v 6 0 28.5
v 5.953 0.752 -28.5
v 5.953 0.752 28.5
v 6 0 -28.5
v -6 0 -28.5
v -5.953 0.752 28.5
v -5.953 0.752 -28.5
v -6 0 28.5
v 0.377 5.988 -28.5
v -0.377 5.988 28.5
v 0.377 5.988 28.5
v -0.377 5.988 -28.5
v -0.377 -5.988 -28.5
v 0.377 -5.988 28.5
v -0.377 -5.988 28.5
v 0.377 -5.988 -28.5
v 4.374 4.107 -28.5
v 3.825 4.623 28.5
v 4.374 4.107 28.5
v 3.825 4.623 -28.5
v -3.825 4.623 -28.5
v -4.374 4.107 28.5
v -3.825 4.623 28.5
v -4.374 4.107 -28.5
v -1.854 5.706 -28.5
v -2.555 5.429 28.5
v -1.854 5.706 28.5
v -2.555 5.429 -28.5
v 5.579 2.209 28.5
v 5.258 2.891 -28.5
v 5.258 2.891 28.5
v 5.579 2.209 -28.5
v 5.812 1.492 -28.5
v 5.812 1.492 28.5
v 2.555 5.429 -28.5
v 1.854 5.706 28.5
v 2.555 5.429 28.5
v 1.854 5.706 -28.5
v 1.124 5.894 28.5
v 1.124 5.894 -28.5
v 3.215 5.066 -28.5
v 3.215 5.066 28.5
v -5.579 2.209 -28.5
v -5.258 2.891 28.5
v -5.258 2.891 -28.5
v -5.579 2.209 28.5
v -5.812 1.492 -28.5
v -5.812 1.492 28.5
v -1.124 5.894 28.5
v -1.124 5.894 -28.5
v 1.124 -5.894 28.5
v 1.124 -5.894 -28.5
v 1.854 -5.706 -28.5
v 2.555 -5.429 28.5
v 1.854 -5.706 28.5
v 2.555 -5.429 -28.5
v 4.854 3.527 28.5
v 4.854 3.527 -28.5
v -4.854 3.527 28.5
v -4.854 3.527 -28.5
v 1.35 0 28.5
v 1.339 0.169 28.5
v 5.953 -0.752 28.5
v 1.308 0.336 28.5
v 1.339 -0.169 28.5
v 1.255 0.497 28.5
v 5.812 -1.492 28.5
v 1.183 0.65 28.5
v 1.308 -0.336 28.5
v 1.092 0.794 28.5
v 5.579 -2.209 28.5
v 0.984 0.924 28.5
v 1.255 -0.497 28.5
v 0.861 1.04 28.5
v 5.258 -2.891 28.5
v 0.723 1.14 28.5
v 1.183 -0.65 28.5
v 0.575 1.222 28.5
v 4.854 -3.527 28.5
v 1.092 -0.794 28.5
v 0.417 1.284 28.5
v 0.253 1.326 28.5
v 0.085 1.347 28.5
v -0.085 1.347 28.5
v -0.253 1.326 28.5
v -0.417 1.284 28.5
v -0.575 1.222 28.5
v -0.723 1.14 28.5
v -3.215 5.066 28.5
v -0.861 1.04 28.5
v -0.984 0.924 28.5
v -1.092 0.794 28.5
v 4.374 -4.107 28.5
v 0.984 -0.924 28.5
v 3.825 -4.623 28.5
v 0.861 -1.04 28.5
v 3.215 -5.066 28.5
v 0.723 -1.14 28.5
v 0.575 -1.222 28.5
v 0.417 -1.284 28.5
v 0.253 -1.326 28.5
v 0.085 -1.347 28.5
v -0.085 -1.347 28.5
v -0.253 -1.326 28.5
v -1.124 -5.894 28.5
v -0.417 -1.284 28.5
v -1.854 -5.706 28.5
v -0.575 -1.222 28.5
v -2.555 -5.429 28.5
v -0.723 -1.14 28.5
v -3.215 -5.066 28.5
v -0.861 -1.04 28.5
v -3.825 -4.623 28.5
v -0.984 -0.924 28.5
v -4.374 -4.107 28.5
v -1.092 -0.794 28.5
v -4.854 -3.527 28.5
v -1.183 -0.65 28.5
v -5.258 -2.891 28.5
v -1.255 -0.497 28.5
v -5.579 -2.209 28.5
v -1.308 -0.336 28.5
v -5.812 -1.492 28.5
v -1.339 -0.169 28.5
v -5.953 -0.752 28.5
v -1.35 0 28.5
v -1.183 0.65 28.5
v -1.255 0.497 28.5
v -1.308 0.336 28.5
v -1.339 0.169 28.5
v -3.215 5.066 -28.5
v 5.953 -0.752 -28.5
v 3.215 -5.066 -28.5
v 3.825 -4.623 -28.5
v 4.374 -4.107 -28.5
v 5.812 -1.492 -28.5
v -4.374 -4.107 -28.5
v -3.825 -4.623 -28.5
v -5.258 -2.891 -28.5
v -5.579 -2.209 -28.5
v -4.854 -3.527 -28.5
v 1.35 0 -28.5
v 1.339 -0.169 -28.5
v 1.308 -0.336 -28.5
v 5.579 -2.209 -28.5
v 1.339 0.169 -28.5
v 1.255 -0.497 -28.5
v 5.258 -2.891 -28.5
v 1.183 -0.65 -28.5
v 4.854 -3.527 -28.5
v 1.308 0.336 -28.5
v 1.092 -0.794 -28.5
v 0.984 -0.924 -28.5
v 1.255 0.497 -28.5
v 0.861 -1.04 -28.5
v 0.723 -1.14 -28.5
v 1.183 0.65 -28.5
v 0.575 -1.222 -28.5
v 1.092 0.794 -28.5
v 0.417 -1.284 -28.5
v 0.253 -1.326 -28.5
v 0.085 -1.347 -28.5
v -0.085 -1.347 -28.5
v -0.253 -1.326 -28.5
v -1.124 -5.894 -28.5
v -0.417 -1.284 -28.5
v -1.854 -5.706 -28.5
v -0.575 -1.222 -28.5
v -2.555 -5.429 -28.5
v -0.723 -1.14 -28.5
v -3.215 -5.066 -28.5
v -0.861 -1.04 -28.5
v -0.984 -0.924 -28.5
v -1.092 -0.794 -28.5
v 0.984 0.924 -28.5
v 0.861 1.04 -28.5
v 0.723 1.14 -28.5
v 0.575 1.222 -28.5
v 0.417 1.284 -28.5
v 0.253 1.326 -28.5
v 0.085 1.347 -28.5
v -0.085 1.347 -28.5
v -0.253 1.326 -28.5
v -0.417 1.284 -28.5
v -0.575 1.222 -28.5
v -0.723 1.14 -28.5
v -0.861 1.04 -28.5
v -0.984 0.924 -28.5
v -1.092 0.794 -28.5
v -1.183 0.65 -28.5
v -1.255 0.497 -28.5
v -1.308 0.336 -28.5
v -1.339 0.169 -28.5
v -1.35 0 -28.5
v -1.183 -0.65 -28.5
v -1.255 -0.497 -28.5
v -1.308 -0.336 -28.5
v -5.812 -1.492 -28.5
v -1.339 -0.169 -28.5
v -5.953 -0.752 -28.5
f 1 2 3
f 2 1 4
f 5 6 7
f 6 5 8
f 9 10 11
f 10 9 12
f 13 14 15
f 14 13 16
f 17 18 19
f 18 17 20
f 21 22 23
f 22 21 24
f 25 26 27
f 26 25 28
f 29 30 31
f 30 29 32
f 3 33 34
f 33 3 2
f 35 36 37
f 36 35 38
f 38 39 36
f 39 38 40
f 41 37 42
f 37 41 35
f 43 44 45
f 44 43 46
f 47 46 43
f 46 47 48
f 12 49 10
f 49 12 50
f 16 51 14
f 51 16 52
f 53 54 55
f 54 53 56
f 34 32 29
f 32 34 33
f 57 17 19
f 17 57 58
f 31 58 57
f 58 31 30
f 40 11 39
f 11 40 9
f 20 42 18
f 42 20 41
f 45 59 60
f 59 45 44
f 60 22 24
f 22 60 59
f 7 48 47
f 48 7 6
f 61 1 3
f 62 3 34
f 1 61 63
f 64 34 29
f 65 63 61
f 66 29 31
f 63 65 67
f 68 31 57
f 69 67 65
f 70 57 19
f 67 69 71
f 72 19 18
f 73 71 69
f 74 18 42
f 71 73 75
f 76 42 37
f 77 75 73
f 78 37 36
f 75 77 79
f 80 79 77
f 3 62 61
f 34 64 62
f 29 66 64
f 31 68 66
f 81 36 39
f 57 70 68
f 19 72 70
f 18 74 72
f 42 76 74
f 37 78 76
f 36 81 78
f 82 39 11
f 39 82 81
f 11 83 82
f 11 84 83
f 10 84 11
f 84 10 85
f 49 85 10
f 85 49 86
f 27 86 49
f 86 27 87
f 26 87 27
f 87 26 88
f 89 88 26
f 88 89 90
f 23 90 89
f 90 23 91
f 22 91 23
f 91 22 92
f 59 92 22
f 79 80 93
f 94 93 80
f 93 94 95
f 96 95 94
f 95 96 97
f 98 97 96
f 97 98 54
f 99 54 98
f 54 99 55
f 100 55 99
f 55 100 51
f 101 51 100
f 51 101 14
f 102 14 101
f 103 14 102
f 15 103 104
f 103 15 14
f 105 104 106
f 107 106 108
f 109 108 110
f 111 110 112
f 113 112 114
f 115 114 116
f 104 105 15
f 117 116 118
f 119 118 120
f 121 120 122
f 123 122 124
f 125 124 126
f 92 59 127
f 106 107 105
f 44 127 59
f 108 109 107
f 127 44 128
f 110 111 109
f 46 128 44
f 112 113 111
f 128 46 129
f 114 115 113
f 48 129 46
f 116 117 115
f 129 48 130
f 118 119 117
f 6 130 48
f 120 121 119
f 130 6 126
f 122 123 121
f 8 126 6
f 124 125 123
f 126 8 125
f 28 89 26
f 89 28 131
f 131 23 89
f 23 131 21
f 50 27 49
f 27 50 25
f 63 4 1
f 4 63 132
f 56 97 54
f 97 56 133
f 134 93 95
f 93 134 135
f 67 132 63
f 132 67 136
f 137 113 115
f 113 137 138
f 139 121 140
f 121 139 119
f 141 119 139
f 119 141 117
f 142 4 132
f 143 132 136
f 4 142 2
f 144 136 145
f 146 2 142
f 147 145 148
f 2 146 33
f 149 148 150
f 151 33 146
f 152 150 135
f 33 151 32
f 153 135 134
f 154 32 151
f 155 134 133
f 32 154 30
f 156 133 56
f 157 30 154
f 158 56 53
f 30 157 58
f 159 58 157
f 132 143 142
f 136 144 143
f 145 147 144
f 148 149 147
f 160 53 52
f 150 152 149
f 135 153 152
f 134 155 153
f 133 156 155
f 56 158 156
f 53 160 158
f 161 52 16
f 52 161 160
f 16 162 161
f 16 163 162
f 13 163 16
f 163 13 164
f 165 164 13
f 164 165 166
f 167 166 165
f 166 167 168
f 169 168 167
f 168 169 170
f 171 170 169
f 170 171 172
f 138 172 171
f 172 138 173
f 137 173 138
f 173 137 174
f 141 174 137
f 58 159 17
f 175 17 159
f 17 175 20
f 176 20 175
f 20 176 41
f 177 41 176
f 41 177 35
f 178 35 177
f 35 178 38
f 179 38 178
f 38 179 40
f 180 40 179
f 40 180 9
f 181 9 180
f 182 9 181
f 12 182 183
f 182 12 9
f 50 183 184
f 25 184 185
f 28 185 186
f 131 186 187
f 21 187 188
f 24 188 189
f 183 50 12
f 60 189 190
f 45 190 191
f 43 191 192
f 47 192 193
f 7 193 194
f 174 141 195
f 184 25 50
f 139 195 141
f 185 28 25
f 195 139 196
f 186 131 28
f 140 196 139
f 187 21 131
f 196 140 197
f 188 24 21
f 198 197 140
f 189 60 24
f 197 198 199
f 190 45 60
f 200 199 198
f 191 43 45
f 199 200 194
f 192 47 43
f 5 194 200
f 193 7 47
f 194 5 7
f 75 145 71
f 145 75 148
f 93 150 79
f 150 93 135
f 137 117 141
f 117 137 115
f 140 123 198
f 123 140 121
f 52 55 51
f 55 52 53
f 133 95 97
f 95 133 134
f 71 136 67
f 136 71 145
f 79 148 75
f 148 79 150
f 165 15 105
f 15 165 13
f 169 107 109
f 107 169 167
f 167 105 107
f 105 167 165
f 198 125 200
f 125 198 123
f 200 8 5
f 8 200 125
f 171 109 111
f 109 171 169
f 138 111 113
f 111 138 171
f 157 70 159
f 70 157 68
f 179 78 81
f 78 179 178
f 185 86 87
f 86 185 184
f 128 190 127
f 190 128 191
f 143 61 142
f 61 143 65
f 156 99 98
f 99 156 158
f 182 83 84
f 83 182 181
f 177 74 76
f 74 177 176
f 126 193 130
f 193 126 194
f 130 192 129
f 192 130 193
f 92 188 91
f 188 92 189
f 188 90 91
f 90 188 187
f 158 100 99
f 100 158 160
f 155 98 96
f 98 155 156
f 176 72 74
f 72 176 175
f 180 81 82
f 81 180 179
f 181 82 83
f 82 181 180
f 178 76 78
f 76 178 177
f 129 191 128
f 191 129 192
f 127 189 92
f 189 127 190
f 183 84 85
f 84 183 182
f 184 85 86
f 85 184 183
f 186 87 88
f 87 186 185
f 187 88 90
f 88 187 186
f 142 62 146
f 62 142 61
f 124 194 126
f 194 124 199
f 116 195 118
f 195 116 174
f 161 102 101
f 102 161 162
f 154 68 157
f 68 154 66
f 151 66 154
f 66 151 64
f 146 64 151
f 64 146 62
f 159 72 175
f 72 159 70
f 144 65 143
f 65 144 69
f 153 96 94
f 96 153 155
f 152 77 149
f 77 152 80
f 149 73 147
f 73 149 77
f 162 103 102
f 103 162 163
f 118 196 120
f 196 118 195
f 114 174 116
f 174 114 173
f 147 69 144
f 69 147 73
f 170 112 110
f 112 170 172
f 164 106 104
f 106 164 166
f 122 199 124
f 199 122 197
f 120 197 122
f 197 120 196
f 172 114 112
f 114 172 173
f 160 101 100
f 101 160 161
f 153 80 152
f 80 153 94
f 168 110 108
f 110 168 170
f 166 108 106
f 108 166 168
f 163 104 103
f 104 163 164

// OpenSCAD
$fn = 50;


difference() {
	union() {
		translate(v = [0, 0, -28.5000000000]) {
			cylinder(h = 57, r = 6.0000000000);
		}
	}
	union() {
		translate(v = [0, 0, -100.0000000000]) {
			cylinder(h = 200, r = 1.3500000000);
		}
	}
}
